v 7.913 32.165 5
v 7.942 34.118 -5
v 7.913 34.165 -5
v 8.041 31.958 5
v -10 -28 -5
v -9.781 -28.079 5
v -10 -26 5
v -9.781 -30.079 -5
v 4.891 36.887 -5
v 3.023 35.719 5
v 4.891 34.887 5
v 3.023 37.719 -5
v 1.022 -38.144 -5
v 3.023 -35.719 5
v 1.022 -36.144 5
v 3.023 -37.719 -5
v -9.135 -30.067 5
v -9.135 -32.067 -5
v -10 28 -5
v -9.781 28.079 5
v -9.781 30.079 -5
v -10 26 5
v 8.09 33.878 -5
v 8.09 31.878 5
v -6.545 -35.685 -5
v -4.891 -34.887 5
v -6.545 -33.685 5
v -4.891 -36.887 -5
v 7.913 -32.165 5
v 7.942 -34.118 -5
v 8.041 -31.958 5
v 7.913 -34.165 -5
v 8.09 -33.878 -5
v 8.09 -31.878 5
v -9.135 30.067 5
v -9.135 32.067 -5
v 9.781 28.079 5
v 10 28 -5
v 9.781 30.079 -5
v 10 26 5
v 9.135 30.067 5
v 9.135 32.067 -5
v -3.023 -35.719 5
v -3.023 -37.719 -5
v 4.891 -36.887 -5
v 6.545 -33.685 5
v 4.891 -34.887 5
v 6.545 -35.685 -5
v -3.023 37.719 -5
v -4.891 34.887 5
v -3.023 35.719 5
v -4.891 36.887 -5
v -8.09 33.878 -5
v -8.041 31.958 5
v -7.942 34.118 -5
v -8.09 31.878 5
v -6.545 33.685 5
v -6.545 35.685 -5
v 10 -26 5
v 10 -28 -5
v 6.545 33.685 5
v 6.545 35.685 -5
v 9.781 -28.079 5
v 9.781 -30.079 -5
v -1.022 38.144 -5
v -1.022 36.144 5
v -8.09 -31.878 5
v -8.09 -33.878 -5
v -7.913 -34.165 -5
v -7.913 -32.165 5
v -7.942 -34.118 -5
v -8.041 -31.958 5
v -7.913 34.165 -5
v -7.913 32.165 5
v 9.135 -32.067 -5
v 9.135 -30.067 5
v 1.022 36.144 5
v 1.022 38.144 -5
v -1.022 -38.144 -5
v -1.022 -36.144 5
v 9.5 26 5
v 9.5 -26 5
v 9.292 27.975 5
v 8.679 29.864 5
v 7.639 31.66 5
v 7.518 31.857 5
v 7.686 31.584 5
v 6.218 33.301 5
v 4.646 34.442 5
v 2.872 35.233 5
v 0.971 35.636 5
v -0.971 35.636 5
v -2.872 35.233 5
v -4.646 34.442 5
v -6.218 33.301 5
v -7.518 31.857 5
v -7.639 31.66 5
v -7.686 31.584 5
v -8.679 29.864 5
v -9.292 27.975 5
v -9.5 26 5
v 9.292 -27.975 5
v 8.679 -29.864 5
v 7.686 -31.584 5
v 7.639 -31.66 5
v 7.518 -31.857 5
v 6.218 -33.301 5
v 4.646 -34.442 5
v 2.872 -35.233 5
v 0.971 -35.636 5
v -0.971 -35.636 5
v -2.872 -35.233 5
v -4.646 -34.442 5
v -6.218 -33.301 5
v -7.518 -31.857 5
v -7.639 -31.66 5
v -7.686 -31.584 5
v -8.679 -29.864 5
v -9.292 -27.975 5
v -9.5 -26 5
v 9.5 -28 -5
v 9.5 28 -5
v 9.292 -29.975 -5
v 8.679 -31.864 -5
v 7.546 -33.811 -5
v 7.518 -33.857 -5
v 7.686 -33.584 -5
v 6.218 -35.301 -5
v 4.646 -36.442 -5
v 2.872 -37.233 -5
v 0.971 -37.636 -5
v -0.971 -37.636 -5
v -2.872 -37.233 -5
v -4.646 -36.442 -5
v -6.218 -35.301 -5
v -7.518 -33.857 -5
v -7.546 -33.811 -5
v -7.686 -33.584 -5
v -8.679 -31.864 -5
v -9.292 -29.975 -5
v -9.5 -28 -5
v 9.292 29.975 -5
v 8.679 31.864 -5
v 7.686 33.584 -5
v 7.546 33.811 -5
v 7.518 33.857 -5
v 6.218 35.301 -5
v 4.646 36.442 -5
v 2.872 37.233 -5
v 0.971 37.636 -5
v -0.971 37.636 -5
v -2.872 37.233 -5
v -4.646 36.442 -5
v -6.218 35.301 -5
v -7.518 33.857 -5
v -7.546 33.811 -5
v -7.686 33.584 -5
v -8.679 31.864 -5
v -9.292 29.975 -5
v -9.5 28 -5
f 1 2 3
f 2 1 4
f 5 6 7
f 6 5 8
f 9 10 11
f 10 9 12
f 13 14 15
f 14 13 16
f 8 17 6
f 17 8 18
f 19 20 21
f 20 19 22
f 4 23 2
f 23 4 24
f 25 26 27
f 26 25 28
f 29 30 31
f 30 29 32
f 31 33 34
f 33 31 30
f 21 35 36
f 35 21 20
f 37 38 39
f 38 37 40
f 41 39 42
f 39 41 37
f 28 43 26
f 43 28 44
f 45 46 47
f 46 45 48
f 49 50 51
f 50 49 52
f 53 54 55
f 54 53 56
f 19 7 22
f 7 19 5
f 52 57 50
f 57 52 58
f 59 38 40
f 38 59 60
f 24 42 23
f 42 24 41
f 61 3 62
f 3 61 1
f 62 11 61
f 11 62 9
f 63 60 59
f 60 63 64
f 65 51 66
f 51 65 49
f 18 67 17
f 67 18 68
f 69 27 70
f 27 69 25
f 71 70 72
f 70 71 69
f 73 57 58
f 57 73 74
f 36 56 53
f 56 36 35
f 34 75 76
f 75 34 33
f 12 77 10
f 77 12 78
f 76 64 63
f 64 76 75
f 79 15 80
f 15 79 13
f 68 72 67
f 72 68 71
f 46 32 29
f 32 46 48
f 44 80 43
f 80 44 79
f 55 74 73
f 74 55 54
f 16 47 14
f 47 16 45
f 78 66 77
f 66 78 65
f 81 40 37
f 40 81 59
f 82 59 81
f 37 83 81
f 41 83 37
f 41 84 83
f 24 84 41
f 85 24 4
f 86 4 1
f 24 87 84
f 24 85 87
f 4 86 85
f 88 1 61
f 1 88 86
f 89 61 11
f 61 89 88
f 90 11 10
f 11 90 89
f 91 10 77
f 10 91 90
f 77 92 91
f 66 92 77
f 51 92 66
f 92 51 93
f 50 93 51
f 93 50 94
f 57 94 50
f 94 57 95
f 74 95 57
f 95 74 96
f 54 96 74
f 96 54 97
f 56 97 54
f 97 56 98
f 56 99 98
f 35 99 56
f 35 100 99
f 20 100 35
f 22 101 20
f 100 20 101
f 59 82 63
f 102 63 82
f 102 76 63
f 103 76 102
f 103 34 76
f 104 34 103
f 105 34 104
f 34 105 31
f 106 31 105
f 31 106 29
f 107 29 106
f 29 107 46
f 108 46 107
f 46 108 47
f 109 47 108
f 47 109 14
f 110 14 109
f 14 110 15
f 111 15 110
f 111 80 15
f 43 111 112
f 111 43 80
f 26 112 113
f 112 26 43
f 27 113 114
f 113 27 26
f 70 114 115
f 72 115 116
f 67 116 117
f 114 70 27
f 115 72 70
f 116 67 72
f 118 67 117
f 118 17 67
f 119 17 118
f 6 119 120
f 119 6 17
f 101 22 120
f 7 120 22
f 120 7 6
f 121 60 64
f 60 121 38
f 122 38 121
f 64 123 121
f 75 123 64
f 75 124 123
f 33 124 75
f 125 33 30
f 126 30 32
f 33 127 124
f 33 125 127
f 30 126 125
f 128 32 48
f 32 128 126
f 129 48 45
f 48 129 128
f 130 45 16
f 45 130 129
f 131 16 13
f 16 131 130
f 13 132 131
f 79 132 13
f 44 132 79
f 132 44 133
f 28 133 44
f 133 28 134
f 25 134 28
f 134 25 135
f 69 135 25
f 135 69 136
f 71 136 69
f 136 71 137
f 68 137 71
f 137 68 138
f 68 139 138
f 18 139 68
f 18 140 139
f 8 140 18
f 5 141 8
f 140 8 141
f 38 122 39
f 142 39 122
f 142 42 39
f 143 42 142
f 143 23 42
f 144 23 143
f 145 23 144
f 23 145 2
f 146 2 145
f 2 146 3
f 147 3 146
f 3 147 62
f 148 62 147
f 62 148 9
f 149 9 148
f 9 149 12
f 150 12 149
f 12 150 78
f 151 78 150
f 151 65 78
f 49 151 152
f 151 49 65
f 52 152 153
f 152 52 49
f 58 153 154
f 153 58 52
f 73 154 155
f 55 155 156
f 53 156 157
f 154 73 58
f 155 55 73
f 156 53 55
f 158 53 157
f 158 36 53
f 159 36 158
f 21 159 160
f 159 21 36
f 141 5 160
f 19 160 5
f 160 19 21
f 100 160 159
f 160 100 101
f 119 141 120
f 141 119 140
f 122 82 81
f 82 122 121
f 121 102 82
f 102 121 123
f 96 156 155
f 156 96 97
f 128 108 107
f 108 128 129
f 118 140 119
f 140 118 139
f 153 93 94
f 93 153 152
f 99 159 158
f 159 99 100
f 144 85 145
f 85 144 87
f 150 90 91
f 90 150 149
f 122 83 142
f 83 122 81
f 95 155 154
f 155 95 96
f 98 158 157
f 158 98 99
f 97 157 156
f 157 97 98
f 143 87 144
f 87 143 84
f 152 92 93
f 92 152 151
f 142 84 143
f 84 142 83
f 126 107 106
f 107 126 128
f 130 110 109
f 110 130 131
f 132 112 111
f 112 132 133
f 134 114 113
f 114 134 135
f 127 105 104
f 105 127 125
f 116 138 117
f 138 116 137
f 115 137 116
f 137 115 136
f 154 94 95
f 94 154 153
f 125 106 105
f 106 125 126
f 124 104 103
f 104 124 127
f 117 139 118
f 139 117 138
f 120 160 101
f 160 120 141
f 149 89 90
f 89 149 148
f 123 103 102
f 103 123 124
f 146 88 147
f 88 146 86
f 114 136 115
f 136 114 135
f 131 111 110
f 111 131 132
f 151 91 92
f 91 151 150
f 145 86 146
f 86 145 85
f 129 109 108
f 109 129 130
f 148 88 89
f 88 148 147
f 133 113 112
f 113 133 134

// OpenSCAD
/*
difference() {
  sphere(55);
  sphere(53);
  translate([0,0,73]) {
    cube(110, center=true);
  }
  translate([0,0,-53]) {
    cube(110, center=true);
  }
}
*/

module shell() {
  hull() {
    translate([0,25,10]) sphere(10);
    translate([0,29,-10]) sphere(10);
    translate([0,-29,-10]) sphere(10);
    translate([0,-25,10]) sphere(10);
  }
}

module shell_hole() {
  hull() {
    translate([0,25,10]) sphere(9.5);
    translate([0,29,-10]) sphere(9.5);
    translate([0,-29,-10]) sphere(9.5);
    translate([0,-25,10]) sphere(9.5);
  }
}


difference() {
  difference() {
    shell();
    translate([0,0,55]) cube(100, center=true);
    translate([0,0,-55]) cube(100, center=true);
  }

  difference() {
    shell_hole();
  }
}
